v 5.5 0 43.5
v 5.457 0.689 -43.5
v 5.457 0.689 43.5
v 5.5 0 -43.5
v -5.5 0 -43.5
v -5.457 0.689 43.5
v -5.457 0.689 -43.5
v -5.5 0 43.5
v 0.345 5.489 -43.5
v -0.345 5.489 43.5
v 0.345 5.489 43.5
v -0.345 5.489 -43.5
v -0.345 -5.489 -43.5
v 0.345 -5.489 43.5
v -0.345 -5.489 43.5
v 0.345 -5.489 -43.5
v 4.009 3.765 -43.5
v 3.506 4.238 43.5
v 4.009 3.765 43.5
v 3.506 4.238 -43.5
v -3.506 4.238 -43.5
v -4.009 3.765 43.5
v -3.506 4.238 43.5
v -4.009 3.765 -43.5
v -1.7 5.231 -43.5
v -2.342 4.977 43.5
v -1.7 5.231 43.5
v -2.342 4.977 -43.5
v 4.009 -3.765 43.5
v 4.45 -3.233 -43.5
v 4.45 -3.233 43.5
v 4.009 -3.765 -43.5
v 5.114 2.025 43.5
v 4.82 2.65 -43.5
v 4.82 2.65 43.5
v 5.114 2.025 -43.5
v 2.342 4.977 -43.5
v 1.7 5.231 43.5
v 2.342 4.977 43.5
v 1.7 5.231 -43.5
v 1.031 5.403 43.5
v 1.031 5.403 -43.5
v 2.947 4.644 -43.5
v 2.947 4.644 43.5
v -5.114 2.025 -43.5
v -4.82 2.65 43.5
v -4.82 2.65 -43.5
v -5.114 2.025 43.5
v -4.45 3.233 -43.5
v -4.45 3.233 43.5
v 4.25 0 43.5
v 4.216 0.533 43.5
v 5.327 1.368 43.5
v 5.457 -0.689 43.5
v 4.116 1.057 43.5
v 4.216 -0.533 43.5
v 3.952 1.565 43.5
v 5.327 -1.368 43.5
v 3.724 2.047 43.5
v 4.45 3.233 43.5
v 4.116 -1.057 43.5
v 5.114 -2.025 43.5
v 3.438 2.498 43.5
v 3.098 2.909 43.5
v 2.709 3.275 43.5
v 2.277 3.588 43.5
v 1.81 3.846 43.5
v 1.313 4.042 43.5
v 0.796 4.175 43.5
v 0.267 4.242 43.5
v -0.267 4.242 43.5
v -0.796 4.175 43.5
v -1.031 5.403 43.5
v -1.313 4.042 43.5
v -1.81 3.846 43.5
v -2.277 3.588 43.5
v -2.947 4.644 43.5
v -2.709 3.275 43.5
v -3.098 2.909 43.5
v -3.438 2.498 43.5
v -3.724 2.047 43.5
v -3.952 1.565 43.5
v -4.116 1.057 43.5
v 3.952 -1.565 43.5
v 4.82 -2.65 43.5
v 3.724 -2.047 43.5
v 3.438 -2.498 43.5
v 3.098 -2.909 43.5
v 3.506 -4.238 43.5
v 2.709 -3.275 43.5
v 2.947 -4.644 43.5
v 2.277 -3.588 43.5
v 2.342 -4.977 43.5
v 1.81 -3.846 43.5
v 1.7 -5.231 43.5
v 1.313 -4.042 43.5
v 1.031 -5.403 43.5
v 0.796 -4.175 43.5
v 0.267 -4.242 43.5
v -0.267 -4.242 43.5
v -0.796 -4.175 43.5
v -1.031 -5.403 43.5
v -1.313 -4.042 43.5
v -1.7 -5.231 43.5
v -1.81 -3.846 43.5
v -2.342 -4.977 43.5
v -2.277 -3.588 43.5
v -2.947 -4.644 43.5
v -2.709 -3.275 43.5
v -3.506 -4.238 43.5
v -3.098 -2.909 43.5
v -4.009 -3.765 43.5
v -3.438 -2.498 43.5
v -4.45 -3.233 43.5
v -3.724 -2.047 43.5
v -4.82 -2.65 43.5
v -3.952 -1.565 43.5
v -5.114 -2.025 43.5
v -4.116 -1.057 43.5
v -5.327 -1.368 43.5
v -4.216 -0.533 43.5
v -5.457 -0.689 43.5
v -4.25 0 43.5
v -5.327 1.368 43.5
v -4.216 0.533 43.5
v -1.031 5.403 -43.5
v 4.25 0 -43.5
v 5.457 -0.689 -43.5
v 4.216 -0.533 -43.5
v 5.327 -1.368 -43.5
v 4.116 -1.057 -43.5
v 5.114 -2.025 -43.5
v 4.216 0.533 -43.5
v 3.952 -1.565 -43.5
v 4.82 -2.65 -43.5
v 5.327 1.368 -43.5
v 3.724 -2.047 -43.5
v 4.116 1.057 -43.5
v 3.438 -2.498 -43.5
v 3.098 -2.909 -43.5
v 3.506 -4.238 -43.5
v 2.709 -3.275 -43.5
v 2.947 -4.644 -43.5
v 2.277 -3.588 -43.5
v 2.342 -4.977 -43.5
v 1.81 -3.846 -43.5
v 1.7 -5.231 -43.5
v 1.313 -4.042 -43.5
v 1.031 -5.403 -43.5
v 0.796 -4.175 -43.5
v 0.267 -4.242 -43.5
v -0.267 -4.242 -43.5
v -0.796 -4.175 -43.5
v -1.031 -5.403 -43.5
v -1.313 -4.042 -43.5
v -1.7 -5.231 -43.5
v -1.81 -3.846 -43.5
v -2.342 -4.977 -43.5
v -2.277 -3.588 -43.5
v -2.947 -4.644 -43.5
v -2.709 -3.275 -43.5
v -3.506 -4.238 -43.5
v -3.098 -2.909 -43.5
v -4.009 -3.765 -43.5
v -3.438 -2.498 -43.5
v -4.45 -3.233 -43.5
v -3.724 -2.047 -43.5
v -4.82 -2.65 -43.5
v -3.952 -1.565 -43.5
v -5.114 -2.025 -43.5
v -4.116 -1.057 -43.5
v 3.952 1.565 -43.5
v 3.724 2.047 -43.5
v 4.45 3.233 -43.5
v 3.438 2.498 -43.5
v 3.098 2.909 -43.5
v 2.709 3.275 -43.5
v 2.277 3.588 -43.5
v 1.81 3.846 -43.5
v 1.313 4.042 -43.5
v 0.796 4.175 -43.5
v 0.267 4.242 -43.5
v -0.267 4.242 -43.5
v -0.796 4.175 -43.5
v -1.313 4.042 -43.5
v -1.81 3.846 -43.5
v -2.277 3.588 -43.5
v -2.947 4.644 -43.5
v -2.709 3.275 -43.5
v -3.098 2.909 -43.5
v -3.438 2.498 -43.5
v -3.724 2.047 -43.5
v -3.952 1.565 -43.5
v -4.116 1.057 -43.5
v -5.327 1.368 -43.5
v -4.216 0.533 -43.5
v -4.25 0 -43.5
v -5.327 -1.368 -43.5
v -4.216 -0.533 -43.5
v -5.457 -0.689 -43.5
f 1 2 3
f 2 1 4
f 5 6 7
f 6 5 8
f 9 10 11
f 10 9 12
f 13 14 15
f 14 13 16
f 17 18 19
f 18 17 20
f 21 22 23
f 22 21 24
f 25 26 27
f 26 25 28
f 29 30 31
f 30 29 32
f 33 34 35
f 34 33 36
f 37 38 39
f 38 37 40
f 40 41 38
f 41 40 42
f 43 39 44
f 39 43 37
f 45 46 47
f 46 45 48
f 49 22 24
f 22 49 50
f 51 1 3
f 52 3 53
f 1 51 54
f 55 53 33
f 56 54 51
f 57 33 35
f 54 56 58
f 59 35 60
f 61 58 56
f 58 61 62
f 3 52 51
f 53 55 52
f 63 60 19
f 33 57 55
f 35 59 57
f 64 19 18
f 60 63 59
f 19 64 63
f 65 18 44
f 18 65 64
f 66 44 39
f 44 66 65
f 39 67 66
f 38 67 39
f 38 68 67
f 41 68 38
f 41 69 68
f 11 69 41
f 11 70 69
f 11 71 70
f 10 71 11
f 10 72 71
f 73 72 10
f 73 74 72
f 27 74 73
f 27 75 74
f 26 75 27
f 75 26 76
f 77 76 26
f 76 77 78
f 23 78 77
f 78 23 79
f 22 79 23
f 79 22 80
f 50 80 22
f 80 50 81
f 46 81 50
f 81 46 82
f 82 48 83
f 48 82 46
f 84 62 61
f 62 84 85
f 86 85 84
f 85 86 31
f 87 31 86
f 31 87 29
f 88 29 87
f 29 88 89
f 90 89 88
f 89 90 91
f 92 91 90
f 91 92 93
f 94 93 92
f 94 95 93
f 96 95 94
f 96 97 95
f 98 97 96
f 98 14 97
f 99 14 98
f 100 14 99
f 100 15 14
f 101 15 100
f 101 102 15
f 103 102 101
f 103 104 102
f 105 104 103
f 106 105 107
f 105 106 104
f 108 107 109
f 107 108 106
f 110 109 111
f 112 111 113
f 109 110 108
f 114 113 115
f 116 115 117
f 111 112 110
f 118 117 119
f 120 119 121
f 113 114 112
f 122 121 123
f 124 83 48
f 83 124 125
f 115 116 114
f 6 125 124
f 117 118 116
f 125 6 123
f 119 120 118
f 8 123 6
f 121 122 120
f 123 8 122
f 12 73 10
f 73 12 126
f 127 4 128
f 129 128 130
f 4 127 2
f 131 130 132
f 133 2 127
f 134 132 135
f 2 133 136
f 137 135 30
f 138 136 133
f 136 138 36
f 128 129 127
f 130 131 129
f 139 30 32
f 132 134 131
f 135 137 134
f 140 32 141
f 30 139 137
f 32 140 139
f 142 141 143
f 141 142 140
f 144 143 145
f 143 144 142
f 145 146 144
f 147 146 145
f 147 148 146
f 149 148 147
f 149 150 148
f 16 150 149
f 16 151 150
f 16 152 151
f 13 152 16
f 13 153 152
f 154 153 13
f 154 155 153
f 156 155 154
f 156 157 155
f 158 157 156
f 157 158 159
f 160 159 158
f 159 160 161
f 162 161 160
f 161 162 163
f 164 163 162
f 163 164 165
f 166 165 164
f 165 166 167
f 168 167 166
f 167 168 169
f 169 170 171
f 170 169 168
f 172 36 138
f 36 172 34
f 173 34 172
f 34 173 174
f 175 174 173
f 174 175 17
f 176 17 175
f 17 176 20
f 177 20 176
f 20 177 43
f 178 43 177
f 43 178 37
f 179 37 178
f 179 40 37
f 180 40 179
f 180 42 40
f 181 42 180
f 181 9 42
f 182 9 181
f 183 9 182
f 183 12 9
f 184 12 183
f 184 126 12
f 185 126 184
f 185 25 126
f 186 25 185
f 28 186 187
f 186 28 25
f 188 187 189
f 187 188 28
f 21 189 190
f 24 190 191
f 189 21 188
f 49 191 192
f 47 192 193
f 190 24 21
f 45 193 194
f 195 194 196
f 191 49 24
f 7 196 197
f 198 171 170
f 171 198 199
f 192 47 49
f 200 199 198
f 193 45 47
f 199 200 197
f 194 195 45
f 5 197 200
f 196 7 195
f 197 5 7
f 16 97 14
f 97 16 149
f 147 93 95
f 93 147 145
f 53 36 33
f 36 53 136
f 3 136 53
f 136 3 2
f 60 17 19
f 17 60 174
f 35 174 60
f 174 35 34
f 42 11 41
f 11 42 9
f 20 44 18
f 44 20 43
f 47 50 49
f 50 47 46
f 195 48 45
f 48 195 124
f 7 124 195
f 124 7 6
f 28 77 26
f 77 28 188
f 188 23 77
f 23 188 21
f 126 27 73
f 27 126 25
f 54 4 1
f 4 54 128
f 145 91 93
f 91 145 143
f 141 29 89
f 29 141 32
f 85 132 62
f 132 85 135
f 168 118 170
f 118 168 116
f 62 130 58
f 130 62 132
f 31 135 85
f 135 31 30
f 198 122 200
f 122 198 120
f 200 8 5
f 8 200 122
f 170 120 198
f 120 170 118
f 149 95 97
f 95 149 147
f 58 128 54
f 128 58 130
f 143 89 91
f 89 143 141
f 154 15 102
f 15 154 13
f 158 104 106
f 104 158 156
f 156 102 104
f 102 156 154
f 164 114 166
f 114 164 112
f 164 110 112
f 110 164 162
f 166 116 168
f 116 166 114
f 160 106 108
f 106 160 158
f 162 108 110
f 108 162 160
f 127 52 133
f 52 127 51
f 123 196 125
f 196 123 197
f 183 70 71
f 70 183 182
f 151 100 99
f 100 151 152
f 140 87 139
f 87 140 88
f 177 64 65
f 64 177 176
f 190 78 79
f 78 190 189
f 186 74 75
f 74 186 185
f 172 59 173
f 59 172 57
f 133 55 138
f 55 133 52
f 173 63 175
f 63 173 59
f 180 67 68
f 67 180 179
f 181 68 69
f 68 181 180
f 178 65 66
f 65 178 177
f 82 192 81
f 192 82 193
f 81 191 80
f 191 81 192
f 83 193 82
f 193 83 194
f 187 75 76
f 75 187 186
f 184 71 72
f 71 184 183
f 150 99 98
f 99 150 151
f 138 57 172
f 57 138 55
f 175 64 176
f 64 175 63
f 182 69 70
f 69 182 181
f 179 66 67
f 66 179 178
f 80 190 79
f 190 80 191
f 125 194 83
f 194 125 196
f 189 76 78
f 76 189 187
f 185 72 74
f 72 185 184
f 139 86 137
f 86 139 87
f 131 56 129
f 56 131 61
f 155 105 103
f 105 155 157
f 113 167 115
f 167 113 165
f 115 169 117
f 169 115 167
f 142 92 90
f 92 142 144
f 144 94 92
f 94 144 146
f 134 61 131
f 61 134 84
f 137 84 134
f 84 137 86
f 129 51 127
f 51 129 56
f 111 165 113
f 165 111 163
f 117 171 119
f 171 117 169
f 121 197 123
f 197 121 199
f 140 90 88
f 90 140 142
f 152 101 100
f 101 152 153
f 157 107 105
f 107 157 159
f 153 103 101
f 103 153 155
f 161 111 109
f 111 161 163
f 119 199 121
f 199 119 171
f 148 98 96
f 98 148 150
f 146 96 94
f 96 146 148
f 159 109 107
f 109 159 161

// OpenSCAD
$fn = 50;


difference() {
	union() {
		translate(v = [0, 0, -43.5000000000]) {
			cylinder(h = 87, r = 5.5000000000);
		}
	}
	union() {
		translate(v = [0, 0, -100.0000000000]) {
			cylinder(h = 200, r = 4.2500000000);
		}
	}
}
